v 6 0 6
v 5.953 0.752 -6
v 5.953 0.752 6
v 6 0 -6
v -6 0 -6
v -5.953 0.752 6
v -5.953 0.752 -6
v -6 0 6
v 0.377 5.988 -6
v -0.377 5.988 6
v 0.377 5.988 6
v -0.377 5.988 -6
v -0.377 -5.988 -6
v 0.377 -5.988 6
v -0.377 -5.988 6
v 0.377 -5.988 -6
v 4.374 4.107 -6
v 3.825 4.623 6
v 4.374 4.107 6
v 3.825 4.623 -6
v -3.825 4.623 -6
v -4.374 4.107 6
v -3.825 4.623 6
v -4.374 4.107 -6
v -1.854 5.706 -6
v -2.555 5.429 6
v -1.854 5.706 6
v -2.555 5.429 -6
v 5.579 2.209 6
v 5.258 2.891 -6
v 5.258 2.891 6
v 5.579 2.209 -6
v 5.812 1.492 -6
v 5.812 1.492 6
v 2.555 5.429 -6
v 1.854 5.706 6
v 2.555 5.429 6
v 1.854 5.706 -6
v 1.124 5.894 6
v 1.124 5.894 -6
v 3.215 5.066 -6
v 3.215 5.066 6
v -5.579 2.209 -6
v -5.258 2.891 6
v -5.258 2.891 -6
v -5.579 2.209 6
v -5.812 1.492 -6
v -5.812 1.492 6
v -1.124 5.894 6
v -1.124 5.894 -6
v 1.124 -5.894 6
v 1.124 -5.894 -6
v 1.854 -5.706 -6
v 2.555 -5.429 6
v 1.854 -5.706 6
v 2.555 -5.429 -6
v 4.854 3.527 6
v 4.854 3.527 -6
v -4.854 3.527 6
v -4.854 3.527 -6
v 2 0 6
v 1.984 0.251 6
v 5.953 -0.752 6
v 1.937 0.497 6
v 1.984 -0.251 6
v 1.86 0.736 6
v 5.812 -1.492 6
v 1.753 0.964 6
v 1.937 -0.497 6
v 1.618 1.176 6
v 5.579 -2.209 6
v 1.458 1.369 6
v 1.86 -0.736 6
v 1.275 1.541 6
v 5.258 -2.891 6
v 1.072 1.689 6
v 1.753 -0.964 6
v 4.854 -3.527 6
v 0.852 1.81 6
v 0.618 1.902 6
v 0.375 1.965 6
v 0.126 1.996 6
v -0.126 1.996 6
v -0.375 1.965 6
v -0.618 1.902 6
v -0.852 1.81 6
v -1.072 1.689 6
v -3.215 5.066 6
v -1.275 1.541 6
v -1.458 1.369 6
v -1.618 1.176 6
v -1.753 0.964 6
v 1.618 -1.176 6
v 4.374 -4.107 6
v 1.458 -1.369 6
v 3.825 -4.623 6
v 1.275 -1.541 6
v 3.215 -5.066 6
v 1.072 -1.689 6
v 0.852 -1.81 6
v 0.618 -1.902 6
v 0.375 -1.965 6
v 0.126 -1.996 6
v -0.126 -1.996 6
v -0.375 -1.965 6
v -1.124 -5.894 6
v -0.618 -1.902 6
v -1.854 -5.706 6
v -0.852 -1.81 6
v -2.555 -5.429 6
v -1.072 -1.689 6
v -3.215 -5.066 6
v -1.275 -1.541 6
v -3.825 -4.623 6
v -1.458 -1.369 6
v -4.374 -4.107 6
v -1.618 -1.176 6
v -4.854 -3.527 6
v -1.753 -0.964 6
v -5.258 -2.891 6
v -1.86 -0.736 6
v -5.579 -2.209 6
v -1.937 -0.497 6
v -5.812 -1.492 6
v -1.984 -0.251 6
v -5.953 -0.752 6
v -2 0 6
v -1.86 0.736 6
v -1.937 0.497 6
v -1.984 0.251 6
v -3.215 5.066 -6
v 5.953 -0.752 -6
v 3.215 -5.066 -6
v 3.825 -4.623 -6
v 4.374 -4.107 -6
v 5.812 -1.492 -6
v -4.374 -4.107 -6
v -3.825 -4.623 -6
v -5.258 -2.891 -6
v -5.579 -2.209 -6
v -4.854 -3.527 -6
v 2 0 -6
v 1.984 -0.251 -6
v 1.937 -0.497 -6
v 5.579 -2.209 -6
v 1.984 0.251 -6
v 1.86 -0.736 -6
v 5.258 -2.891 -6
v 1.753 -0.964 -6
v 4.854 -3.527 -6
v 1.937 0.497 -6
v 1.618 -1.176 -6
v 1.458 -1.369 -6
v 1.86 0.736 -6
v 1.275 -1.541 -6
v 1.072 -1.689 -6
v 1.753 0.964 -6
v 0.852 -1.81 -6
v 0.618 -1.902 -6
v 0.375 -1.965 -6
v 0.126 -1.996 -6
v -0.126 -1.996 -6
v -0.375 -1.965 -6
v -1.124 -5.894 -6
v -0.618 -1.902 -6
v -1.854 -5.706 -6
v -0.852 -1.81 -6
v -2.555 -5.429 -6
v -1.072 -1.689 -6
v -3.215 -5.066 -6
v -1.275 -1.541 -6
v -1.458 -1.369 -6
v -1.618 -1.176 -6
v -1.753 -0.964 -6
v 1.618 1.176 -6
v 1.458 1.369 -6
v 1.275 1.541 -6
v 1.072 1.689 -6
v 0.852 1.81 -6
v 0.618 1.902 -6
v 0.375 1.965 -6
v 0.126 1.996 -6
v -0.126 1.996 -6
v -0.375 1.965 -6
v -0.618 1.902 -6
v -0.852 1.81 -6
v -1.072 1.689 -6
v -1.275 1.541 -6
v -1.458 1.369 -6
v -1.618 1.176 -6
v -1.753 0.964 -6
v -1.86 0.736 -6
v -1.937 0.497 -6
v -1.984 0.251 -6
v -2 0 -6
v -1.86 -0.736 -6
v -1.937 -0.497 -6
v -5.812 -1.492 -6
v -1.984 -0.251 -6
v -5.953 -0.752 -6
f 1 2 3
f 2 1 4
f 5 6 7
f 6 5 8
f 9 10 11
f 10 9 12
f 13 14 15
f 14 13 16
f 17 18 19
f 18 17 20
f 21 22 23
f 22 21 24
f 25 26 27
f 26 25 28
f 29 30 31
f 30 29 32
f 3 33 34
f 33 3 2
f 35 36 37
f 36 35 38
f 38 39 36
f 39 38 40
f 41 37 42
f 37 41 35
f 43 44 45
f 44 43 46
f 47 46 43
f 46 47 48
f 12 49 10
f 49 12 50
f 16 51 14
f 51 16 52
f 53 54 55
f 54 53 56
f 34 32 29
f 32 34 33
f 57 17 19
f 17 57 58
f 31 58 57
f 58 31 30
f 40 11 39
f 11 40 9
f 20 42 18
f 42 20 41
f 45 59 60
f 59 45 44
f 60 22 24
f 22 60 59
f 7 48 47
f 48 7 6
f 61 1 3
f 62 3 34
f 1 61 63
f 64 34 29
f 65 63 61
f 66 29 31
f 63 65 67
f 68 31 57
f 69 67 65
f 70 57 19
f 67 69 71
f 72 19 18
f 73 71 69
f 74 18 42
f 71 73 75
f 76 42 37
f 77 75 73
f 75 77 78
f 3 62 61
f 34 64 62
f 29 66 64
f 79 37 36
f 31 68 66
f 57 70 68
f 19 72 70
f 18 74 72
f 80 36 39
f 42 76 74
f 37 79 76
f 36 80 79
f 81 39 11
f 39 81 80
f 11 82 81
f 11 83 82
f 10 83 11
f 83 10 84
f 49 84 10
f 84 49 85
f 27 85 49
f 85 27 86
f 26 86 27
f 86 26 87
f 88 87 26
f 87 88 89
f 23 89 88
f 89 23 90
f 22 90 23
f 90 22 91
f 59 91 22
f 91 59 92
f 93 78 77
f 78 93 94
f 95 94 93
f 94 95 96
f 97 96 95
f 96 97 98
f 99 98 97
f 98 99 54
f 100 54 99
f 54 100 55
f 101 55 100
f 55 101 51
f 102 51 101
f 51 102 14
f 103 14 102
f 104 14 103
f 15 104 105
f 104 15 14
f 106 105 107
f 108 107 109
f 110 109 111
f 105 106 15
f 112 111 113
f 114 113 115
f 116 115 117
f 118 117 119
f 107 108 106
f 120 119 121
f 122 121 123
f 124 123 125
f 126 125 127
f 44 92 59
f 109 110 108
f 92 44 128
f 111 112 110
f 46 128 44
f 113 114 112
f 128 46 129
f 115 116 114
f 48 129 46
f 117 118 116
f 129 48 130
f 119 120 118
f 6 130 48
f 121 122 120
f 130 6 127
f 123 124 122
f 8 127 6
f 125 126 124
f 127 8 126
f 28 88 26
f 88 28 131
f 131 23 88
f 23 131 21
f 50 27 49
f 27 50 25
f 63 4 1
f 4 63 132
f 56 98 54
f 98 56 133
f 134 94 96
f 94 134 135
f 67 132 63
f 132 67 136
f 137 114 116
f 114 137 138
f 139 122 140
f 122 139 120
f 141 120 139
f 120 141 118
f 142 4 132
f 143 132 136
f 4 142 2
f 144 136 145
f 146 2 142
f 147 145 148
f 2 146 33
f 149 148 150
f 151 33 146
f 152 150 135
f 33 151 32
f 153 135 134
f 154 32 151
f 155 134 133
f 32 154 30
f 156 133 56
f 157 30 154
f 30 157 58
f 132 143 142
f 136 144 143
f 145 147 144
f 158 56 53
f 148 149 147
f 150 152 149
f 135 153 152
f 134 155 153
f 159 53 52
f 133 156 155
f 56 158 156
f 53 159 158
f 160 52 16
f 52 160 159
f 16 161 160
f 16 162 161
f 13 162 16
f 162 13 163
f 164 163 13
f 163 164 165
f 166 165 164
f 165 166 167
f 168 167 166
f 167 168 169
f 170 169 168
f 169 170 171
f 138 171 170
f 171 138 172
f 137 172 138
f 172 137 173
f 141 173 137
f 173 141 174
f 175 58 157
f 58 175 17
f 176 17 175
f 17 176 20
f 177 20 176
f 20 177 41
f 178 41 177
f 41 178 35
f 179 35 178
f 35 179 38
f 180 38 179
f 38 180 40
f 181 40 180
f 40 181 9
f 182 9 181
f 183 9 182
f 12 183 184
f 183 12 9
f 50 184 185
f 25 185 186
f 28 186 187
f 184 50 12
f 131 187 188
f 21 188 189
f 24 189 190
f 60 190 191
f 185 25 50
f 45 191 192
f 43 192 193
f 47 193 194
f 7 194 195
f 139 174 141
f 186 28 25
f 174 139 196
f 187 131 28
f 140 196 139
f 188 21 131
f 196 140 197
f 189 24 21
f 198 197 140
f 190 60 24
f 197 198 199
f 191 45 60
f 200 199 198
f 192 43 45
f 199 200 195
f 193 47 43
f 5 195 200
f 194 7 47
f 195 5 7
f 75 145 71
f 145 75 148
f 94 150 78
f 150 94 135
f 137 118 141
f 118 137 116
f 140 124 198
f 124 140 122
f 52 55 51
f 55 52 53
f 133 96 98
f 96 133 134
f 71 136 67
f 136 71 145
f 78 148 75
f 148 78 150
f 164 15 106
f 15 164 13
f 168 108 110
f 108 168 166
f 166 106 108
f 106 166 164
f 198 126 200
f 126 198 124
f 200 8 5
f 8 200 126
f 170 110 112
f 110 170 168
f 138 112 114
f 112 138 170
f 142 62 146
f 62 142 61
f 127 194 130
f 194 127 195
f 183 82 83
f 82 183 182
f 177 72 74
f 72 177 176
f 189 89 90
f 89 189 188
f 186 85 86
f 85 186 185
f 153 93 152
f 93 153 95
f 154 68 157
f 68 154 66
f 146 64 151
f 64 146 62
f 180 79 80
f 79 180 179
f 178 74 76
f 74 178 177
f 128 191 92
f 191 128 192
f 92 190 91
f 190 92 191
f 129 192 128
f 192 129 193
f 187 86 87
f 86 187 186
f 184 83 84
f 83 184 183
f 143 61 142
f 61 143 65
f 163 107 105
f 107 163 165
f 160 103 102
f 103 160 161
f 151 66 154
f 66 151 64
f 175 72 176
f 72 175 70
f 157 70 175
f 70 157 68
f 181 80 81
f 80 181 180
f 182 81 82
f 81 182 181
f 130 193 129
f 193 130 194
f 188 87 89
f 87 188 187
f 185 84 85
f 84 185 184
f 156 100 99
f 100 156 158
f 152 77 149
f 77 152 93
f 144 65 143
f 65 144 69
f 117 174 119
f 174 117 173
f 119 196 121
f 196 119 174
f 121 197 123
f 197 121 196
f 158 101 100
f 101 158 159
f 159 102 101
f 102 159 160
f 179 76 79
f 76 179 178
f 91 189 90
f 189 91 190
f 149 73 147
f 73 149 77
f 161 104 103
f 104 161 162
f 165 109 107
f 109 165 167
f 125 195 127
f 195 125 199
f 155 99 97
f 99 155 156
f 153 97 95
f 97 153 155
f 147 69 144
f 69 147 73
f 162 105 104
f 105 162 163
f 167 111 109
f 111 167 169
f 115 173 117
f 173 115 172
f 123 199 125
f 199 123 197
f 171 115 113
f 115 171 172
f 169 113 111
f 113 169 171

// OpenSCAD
$fn = 50;


difference() {
	union() {
		translate(v = [0, 0, -6.0000000000]) {
			cylinder(h = 12, r = 6.0000000000);
		}
	}
	union() {
		translate(v = [0, 0, -100.0000000000]) {
			cylinder(h = 200, r = 2);
		}
	}
}
